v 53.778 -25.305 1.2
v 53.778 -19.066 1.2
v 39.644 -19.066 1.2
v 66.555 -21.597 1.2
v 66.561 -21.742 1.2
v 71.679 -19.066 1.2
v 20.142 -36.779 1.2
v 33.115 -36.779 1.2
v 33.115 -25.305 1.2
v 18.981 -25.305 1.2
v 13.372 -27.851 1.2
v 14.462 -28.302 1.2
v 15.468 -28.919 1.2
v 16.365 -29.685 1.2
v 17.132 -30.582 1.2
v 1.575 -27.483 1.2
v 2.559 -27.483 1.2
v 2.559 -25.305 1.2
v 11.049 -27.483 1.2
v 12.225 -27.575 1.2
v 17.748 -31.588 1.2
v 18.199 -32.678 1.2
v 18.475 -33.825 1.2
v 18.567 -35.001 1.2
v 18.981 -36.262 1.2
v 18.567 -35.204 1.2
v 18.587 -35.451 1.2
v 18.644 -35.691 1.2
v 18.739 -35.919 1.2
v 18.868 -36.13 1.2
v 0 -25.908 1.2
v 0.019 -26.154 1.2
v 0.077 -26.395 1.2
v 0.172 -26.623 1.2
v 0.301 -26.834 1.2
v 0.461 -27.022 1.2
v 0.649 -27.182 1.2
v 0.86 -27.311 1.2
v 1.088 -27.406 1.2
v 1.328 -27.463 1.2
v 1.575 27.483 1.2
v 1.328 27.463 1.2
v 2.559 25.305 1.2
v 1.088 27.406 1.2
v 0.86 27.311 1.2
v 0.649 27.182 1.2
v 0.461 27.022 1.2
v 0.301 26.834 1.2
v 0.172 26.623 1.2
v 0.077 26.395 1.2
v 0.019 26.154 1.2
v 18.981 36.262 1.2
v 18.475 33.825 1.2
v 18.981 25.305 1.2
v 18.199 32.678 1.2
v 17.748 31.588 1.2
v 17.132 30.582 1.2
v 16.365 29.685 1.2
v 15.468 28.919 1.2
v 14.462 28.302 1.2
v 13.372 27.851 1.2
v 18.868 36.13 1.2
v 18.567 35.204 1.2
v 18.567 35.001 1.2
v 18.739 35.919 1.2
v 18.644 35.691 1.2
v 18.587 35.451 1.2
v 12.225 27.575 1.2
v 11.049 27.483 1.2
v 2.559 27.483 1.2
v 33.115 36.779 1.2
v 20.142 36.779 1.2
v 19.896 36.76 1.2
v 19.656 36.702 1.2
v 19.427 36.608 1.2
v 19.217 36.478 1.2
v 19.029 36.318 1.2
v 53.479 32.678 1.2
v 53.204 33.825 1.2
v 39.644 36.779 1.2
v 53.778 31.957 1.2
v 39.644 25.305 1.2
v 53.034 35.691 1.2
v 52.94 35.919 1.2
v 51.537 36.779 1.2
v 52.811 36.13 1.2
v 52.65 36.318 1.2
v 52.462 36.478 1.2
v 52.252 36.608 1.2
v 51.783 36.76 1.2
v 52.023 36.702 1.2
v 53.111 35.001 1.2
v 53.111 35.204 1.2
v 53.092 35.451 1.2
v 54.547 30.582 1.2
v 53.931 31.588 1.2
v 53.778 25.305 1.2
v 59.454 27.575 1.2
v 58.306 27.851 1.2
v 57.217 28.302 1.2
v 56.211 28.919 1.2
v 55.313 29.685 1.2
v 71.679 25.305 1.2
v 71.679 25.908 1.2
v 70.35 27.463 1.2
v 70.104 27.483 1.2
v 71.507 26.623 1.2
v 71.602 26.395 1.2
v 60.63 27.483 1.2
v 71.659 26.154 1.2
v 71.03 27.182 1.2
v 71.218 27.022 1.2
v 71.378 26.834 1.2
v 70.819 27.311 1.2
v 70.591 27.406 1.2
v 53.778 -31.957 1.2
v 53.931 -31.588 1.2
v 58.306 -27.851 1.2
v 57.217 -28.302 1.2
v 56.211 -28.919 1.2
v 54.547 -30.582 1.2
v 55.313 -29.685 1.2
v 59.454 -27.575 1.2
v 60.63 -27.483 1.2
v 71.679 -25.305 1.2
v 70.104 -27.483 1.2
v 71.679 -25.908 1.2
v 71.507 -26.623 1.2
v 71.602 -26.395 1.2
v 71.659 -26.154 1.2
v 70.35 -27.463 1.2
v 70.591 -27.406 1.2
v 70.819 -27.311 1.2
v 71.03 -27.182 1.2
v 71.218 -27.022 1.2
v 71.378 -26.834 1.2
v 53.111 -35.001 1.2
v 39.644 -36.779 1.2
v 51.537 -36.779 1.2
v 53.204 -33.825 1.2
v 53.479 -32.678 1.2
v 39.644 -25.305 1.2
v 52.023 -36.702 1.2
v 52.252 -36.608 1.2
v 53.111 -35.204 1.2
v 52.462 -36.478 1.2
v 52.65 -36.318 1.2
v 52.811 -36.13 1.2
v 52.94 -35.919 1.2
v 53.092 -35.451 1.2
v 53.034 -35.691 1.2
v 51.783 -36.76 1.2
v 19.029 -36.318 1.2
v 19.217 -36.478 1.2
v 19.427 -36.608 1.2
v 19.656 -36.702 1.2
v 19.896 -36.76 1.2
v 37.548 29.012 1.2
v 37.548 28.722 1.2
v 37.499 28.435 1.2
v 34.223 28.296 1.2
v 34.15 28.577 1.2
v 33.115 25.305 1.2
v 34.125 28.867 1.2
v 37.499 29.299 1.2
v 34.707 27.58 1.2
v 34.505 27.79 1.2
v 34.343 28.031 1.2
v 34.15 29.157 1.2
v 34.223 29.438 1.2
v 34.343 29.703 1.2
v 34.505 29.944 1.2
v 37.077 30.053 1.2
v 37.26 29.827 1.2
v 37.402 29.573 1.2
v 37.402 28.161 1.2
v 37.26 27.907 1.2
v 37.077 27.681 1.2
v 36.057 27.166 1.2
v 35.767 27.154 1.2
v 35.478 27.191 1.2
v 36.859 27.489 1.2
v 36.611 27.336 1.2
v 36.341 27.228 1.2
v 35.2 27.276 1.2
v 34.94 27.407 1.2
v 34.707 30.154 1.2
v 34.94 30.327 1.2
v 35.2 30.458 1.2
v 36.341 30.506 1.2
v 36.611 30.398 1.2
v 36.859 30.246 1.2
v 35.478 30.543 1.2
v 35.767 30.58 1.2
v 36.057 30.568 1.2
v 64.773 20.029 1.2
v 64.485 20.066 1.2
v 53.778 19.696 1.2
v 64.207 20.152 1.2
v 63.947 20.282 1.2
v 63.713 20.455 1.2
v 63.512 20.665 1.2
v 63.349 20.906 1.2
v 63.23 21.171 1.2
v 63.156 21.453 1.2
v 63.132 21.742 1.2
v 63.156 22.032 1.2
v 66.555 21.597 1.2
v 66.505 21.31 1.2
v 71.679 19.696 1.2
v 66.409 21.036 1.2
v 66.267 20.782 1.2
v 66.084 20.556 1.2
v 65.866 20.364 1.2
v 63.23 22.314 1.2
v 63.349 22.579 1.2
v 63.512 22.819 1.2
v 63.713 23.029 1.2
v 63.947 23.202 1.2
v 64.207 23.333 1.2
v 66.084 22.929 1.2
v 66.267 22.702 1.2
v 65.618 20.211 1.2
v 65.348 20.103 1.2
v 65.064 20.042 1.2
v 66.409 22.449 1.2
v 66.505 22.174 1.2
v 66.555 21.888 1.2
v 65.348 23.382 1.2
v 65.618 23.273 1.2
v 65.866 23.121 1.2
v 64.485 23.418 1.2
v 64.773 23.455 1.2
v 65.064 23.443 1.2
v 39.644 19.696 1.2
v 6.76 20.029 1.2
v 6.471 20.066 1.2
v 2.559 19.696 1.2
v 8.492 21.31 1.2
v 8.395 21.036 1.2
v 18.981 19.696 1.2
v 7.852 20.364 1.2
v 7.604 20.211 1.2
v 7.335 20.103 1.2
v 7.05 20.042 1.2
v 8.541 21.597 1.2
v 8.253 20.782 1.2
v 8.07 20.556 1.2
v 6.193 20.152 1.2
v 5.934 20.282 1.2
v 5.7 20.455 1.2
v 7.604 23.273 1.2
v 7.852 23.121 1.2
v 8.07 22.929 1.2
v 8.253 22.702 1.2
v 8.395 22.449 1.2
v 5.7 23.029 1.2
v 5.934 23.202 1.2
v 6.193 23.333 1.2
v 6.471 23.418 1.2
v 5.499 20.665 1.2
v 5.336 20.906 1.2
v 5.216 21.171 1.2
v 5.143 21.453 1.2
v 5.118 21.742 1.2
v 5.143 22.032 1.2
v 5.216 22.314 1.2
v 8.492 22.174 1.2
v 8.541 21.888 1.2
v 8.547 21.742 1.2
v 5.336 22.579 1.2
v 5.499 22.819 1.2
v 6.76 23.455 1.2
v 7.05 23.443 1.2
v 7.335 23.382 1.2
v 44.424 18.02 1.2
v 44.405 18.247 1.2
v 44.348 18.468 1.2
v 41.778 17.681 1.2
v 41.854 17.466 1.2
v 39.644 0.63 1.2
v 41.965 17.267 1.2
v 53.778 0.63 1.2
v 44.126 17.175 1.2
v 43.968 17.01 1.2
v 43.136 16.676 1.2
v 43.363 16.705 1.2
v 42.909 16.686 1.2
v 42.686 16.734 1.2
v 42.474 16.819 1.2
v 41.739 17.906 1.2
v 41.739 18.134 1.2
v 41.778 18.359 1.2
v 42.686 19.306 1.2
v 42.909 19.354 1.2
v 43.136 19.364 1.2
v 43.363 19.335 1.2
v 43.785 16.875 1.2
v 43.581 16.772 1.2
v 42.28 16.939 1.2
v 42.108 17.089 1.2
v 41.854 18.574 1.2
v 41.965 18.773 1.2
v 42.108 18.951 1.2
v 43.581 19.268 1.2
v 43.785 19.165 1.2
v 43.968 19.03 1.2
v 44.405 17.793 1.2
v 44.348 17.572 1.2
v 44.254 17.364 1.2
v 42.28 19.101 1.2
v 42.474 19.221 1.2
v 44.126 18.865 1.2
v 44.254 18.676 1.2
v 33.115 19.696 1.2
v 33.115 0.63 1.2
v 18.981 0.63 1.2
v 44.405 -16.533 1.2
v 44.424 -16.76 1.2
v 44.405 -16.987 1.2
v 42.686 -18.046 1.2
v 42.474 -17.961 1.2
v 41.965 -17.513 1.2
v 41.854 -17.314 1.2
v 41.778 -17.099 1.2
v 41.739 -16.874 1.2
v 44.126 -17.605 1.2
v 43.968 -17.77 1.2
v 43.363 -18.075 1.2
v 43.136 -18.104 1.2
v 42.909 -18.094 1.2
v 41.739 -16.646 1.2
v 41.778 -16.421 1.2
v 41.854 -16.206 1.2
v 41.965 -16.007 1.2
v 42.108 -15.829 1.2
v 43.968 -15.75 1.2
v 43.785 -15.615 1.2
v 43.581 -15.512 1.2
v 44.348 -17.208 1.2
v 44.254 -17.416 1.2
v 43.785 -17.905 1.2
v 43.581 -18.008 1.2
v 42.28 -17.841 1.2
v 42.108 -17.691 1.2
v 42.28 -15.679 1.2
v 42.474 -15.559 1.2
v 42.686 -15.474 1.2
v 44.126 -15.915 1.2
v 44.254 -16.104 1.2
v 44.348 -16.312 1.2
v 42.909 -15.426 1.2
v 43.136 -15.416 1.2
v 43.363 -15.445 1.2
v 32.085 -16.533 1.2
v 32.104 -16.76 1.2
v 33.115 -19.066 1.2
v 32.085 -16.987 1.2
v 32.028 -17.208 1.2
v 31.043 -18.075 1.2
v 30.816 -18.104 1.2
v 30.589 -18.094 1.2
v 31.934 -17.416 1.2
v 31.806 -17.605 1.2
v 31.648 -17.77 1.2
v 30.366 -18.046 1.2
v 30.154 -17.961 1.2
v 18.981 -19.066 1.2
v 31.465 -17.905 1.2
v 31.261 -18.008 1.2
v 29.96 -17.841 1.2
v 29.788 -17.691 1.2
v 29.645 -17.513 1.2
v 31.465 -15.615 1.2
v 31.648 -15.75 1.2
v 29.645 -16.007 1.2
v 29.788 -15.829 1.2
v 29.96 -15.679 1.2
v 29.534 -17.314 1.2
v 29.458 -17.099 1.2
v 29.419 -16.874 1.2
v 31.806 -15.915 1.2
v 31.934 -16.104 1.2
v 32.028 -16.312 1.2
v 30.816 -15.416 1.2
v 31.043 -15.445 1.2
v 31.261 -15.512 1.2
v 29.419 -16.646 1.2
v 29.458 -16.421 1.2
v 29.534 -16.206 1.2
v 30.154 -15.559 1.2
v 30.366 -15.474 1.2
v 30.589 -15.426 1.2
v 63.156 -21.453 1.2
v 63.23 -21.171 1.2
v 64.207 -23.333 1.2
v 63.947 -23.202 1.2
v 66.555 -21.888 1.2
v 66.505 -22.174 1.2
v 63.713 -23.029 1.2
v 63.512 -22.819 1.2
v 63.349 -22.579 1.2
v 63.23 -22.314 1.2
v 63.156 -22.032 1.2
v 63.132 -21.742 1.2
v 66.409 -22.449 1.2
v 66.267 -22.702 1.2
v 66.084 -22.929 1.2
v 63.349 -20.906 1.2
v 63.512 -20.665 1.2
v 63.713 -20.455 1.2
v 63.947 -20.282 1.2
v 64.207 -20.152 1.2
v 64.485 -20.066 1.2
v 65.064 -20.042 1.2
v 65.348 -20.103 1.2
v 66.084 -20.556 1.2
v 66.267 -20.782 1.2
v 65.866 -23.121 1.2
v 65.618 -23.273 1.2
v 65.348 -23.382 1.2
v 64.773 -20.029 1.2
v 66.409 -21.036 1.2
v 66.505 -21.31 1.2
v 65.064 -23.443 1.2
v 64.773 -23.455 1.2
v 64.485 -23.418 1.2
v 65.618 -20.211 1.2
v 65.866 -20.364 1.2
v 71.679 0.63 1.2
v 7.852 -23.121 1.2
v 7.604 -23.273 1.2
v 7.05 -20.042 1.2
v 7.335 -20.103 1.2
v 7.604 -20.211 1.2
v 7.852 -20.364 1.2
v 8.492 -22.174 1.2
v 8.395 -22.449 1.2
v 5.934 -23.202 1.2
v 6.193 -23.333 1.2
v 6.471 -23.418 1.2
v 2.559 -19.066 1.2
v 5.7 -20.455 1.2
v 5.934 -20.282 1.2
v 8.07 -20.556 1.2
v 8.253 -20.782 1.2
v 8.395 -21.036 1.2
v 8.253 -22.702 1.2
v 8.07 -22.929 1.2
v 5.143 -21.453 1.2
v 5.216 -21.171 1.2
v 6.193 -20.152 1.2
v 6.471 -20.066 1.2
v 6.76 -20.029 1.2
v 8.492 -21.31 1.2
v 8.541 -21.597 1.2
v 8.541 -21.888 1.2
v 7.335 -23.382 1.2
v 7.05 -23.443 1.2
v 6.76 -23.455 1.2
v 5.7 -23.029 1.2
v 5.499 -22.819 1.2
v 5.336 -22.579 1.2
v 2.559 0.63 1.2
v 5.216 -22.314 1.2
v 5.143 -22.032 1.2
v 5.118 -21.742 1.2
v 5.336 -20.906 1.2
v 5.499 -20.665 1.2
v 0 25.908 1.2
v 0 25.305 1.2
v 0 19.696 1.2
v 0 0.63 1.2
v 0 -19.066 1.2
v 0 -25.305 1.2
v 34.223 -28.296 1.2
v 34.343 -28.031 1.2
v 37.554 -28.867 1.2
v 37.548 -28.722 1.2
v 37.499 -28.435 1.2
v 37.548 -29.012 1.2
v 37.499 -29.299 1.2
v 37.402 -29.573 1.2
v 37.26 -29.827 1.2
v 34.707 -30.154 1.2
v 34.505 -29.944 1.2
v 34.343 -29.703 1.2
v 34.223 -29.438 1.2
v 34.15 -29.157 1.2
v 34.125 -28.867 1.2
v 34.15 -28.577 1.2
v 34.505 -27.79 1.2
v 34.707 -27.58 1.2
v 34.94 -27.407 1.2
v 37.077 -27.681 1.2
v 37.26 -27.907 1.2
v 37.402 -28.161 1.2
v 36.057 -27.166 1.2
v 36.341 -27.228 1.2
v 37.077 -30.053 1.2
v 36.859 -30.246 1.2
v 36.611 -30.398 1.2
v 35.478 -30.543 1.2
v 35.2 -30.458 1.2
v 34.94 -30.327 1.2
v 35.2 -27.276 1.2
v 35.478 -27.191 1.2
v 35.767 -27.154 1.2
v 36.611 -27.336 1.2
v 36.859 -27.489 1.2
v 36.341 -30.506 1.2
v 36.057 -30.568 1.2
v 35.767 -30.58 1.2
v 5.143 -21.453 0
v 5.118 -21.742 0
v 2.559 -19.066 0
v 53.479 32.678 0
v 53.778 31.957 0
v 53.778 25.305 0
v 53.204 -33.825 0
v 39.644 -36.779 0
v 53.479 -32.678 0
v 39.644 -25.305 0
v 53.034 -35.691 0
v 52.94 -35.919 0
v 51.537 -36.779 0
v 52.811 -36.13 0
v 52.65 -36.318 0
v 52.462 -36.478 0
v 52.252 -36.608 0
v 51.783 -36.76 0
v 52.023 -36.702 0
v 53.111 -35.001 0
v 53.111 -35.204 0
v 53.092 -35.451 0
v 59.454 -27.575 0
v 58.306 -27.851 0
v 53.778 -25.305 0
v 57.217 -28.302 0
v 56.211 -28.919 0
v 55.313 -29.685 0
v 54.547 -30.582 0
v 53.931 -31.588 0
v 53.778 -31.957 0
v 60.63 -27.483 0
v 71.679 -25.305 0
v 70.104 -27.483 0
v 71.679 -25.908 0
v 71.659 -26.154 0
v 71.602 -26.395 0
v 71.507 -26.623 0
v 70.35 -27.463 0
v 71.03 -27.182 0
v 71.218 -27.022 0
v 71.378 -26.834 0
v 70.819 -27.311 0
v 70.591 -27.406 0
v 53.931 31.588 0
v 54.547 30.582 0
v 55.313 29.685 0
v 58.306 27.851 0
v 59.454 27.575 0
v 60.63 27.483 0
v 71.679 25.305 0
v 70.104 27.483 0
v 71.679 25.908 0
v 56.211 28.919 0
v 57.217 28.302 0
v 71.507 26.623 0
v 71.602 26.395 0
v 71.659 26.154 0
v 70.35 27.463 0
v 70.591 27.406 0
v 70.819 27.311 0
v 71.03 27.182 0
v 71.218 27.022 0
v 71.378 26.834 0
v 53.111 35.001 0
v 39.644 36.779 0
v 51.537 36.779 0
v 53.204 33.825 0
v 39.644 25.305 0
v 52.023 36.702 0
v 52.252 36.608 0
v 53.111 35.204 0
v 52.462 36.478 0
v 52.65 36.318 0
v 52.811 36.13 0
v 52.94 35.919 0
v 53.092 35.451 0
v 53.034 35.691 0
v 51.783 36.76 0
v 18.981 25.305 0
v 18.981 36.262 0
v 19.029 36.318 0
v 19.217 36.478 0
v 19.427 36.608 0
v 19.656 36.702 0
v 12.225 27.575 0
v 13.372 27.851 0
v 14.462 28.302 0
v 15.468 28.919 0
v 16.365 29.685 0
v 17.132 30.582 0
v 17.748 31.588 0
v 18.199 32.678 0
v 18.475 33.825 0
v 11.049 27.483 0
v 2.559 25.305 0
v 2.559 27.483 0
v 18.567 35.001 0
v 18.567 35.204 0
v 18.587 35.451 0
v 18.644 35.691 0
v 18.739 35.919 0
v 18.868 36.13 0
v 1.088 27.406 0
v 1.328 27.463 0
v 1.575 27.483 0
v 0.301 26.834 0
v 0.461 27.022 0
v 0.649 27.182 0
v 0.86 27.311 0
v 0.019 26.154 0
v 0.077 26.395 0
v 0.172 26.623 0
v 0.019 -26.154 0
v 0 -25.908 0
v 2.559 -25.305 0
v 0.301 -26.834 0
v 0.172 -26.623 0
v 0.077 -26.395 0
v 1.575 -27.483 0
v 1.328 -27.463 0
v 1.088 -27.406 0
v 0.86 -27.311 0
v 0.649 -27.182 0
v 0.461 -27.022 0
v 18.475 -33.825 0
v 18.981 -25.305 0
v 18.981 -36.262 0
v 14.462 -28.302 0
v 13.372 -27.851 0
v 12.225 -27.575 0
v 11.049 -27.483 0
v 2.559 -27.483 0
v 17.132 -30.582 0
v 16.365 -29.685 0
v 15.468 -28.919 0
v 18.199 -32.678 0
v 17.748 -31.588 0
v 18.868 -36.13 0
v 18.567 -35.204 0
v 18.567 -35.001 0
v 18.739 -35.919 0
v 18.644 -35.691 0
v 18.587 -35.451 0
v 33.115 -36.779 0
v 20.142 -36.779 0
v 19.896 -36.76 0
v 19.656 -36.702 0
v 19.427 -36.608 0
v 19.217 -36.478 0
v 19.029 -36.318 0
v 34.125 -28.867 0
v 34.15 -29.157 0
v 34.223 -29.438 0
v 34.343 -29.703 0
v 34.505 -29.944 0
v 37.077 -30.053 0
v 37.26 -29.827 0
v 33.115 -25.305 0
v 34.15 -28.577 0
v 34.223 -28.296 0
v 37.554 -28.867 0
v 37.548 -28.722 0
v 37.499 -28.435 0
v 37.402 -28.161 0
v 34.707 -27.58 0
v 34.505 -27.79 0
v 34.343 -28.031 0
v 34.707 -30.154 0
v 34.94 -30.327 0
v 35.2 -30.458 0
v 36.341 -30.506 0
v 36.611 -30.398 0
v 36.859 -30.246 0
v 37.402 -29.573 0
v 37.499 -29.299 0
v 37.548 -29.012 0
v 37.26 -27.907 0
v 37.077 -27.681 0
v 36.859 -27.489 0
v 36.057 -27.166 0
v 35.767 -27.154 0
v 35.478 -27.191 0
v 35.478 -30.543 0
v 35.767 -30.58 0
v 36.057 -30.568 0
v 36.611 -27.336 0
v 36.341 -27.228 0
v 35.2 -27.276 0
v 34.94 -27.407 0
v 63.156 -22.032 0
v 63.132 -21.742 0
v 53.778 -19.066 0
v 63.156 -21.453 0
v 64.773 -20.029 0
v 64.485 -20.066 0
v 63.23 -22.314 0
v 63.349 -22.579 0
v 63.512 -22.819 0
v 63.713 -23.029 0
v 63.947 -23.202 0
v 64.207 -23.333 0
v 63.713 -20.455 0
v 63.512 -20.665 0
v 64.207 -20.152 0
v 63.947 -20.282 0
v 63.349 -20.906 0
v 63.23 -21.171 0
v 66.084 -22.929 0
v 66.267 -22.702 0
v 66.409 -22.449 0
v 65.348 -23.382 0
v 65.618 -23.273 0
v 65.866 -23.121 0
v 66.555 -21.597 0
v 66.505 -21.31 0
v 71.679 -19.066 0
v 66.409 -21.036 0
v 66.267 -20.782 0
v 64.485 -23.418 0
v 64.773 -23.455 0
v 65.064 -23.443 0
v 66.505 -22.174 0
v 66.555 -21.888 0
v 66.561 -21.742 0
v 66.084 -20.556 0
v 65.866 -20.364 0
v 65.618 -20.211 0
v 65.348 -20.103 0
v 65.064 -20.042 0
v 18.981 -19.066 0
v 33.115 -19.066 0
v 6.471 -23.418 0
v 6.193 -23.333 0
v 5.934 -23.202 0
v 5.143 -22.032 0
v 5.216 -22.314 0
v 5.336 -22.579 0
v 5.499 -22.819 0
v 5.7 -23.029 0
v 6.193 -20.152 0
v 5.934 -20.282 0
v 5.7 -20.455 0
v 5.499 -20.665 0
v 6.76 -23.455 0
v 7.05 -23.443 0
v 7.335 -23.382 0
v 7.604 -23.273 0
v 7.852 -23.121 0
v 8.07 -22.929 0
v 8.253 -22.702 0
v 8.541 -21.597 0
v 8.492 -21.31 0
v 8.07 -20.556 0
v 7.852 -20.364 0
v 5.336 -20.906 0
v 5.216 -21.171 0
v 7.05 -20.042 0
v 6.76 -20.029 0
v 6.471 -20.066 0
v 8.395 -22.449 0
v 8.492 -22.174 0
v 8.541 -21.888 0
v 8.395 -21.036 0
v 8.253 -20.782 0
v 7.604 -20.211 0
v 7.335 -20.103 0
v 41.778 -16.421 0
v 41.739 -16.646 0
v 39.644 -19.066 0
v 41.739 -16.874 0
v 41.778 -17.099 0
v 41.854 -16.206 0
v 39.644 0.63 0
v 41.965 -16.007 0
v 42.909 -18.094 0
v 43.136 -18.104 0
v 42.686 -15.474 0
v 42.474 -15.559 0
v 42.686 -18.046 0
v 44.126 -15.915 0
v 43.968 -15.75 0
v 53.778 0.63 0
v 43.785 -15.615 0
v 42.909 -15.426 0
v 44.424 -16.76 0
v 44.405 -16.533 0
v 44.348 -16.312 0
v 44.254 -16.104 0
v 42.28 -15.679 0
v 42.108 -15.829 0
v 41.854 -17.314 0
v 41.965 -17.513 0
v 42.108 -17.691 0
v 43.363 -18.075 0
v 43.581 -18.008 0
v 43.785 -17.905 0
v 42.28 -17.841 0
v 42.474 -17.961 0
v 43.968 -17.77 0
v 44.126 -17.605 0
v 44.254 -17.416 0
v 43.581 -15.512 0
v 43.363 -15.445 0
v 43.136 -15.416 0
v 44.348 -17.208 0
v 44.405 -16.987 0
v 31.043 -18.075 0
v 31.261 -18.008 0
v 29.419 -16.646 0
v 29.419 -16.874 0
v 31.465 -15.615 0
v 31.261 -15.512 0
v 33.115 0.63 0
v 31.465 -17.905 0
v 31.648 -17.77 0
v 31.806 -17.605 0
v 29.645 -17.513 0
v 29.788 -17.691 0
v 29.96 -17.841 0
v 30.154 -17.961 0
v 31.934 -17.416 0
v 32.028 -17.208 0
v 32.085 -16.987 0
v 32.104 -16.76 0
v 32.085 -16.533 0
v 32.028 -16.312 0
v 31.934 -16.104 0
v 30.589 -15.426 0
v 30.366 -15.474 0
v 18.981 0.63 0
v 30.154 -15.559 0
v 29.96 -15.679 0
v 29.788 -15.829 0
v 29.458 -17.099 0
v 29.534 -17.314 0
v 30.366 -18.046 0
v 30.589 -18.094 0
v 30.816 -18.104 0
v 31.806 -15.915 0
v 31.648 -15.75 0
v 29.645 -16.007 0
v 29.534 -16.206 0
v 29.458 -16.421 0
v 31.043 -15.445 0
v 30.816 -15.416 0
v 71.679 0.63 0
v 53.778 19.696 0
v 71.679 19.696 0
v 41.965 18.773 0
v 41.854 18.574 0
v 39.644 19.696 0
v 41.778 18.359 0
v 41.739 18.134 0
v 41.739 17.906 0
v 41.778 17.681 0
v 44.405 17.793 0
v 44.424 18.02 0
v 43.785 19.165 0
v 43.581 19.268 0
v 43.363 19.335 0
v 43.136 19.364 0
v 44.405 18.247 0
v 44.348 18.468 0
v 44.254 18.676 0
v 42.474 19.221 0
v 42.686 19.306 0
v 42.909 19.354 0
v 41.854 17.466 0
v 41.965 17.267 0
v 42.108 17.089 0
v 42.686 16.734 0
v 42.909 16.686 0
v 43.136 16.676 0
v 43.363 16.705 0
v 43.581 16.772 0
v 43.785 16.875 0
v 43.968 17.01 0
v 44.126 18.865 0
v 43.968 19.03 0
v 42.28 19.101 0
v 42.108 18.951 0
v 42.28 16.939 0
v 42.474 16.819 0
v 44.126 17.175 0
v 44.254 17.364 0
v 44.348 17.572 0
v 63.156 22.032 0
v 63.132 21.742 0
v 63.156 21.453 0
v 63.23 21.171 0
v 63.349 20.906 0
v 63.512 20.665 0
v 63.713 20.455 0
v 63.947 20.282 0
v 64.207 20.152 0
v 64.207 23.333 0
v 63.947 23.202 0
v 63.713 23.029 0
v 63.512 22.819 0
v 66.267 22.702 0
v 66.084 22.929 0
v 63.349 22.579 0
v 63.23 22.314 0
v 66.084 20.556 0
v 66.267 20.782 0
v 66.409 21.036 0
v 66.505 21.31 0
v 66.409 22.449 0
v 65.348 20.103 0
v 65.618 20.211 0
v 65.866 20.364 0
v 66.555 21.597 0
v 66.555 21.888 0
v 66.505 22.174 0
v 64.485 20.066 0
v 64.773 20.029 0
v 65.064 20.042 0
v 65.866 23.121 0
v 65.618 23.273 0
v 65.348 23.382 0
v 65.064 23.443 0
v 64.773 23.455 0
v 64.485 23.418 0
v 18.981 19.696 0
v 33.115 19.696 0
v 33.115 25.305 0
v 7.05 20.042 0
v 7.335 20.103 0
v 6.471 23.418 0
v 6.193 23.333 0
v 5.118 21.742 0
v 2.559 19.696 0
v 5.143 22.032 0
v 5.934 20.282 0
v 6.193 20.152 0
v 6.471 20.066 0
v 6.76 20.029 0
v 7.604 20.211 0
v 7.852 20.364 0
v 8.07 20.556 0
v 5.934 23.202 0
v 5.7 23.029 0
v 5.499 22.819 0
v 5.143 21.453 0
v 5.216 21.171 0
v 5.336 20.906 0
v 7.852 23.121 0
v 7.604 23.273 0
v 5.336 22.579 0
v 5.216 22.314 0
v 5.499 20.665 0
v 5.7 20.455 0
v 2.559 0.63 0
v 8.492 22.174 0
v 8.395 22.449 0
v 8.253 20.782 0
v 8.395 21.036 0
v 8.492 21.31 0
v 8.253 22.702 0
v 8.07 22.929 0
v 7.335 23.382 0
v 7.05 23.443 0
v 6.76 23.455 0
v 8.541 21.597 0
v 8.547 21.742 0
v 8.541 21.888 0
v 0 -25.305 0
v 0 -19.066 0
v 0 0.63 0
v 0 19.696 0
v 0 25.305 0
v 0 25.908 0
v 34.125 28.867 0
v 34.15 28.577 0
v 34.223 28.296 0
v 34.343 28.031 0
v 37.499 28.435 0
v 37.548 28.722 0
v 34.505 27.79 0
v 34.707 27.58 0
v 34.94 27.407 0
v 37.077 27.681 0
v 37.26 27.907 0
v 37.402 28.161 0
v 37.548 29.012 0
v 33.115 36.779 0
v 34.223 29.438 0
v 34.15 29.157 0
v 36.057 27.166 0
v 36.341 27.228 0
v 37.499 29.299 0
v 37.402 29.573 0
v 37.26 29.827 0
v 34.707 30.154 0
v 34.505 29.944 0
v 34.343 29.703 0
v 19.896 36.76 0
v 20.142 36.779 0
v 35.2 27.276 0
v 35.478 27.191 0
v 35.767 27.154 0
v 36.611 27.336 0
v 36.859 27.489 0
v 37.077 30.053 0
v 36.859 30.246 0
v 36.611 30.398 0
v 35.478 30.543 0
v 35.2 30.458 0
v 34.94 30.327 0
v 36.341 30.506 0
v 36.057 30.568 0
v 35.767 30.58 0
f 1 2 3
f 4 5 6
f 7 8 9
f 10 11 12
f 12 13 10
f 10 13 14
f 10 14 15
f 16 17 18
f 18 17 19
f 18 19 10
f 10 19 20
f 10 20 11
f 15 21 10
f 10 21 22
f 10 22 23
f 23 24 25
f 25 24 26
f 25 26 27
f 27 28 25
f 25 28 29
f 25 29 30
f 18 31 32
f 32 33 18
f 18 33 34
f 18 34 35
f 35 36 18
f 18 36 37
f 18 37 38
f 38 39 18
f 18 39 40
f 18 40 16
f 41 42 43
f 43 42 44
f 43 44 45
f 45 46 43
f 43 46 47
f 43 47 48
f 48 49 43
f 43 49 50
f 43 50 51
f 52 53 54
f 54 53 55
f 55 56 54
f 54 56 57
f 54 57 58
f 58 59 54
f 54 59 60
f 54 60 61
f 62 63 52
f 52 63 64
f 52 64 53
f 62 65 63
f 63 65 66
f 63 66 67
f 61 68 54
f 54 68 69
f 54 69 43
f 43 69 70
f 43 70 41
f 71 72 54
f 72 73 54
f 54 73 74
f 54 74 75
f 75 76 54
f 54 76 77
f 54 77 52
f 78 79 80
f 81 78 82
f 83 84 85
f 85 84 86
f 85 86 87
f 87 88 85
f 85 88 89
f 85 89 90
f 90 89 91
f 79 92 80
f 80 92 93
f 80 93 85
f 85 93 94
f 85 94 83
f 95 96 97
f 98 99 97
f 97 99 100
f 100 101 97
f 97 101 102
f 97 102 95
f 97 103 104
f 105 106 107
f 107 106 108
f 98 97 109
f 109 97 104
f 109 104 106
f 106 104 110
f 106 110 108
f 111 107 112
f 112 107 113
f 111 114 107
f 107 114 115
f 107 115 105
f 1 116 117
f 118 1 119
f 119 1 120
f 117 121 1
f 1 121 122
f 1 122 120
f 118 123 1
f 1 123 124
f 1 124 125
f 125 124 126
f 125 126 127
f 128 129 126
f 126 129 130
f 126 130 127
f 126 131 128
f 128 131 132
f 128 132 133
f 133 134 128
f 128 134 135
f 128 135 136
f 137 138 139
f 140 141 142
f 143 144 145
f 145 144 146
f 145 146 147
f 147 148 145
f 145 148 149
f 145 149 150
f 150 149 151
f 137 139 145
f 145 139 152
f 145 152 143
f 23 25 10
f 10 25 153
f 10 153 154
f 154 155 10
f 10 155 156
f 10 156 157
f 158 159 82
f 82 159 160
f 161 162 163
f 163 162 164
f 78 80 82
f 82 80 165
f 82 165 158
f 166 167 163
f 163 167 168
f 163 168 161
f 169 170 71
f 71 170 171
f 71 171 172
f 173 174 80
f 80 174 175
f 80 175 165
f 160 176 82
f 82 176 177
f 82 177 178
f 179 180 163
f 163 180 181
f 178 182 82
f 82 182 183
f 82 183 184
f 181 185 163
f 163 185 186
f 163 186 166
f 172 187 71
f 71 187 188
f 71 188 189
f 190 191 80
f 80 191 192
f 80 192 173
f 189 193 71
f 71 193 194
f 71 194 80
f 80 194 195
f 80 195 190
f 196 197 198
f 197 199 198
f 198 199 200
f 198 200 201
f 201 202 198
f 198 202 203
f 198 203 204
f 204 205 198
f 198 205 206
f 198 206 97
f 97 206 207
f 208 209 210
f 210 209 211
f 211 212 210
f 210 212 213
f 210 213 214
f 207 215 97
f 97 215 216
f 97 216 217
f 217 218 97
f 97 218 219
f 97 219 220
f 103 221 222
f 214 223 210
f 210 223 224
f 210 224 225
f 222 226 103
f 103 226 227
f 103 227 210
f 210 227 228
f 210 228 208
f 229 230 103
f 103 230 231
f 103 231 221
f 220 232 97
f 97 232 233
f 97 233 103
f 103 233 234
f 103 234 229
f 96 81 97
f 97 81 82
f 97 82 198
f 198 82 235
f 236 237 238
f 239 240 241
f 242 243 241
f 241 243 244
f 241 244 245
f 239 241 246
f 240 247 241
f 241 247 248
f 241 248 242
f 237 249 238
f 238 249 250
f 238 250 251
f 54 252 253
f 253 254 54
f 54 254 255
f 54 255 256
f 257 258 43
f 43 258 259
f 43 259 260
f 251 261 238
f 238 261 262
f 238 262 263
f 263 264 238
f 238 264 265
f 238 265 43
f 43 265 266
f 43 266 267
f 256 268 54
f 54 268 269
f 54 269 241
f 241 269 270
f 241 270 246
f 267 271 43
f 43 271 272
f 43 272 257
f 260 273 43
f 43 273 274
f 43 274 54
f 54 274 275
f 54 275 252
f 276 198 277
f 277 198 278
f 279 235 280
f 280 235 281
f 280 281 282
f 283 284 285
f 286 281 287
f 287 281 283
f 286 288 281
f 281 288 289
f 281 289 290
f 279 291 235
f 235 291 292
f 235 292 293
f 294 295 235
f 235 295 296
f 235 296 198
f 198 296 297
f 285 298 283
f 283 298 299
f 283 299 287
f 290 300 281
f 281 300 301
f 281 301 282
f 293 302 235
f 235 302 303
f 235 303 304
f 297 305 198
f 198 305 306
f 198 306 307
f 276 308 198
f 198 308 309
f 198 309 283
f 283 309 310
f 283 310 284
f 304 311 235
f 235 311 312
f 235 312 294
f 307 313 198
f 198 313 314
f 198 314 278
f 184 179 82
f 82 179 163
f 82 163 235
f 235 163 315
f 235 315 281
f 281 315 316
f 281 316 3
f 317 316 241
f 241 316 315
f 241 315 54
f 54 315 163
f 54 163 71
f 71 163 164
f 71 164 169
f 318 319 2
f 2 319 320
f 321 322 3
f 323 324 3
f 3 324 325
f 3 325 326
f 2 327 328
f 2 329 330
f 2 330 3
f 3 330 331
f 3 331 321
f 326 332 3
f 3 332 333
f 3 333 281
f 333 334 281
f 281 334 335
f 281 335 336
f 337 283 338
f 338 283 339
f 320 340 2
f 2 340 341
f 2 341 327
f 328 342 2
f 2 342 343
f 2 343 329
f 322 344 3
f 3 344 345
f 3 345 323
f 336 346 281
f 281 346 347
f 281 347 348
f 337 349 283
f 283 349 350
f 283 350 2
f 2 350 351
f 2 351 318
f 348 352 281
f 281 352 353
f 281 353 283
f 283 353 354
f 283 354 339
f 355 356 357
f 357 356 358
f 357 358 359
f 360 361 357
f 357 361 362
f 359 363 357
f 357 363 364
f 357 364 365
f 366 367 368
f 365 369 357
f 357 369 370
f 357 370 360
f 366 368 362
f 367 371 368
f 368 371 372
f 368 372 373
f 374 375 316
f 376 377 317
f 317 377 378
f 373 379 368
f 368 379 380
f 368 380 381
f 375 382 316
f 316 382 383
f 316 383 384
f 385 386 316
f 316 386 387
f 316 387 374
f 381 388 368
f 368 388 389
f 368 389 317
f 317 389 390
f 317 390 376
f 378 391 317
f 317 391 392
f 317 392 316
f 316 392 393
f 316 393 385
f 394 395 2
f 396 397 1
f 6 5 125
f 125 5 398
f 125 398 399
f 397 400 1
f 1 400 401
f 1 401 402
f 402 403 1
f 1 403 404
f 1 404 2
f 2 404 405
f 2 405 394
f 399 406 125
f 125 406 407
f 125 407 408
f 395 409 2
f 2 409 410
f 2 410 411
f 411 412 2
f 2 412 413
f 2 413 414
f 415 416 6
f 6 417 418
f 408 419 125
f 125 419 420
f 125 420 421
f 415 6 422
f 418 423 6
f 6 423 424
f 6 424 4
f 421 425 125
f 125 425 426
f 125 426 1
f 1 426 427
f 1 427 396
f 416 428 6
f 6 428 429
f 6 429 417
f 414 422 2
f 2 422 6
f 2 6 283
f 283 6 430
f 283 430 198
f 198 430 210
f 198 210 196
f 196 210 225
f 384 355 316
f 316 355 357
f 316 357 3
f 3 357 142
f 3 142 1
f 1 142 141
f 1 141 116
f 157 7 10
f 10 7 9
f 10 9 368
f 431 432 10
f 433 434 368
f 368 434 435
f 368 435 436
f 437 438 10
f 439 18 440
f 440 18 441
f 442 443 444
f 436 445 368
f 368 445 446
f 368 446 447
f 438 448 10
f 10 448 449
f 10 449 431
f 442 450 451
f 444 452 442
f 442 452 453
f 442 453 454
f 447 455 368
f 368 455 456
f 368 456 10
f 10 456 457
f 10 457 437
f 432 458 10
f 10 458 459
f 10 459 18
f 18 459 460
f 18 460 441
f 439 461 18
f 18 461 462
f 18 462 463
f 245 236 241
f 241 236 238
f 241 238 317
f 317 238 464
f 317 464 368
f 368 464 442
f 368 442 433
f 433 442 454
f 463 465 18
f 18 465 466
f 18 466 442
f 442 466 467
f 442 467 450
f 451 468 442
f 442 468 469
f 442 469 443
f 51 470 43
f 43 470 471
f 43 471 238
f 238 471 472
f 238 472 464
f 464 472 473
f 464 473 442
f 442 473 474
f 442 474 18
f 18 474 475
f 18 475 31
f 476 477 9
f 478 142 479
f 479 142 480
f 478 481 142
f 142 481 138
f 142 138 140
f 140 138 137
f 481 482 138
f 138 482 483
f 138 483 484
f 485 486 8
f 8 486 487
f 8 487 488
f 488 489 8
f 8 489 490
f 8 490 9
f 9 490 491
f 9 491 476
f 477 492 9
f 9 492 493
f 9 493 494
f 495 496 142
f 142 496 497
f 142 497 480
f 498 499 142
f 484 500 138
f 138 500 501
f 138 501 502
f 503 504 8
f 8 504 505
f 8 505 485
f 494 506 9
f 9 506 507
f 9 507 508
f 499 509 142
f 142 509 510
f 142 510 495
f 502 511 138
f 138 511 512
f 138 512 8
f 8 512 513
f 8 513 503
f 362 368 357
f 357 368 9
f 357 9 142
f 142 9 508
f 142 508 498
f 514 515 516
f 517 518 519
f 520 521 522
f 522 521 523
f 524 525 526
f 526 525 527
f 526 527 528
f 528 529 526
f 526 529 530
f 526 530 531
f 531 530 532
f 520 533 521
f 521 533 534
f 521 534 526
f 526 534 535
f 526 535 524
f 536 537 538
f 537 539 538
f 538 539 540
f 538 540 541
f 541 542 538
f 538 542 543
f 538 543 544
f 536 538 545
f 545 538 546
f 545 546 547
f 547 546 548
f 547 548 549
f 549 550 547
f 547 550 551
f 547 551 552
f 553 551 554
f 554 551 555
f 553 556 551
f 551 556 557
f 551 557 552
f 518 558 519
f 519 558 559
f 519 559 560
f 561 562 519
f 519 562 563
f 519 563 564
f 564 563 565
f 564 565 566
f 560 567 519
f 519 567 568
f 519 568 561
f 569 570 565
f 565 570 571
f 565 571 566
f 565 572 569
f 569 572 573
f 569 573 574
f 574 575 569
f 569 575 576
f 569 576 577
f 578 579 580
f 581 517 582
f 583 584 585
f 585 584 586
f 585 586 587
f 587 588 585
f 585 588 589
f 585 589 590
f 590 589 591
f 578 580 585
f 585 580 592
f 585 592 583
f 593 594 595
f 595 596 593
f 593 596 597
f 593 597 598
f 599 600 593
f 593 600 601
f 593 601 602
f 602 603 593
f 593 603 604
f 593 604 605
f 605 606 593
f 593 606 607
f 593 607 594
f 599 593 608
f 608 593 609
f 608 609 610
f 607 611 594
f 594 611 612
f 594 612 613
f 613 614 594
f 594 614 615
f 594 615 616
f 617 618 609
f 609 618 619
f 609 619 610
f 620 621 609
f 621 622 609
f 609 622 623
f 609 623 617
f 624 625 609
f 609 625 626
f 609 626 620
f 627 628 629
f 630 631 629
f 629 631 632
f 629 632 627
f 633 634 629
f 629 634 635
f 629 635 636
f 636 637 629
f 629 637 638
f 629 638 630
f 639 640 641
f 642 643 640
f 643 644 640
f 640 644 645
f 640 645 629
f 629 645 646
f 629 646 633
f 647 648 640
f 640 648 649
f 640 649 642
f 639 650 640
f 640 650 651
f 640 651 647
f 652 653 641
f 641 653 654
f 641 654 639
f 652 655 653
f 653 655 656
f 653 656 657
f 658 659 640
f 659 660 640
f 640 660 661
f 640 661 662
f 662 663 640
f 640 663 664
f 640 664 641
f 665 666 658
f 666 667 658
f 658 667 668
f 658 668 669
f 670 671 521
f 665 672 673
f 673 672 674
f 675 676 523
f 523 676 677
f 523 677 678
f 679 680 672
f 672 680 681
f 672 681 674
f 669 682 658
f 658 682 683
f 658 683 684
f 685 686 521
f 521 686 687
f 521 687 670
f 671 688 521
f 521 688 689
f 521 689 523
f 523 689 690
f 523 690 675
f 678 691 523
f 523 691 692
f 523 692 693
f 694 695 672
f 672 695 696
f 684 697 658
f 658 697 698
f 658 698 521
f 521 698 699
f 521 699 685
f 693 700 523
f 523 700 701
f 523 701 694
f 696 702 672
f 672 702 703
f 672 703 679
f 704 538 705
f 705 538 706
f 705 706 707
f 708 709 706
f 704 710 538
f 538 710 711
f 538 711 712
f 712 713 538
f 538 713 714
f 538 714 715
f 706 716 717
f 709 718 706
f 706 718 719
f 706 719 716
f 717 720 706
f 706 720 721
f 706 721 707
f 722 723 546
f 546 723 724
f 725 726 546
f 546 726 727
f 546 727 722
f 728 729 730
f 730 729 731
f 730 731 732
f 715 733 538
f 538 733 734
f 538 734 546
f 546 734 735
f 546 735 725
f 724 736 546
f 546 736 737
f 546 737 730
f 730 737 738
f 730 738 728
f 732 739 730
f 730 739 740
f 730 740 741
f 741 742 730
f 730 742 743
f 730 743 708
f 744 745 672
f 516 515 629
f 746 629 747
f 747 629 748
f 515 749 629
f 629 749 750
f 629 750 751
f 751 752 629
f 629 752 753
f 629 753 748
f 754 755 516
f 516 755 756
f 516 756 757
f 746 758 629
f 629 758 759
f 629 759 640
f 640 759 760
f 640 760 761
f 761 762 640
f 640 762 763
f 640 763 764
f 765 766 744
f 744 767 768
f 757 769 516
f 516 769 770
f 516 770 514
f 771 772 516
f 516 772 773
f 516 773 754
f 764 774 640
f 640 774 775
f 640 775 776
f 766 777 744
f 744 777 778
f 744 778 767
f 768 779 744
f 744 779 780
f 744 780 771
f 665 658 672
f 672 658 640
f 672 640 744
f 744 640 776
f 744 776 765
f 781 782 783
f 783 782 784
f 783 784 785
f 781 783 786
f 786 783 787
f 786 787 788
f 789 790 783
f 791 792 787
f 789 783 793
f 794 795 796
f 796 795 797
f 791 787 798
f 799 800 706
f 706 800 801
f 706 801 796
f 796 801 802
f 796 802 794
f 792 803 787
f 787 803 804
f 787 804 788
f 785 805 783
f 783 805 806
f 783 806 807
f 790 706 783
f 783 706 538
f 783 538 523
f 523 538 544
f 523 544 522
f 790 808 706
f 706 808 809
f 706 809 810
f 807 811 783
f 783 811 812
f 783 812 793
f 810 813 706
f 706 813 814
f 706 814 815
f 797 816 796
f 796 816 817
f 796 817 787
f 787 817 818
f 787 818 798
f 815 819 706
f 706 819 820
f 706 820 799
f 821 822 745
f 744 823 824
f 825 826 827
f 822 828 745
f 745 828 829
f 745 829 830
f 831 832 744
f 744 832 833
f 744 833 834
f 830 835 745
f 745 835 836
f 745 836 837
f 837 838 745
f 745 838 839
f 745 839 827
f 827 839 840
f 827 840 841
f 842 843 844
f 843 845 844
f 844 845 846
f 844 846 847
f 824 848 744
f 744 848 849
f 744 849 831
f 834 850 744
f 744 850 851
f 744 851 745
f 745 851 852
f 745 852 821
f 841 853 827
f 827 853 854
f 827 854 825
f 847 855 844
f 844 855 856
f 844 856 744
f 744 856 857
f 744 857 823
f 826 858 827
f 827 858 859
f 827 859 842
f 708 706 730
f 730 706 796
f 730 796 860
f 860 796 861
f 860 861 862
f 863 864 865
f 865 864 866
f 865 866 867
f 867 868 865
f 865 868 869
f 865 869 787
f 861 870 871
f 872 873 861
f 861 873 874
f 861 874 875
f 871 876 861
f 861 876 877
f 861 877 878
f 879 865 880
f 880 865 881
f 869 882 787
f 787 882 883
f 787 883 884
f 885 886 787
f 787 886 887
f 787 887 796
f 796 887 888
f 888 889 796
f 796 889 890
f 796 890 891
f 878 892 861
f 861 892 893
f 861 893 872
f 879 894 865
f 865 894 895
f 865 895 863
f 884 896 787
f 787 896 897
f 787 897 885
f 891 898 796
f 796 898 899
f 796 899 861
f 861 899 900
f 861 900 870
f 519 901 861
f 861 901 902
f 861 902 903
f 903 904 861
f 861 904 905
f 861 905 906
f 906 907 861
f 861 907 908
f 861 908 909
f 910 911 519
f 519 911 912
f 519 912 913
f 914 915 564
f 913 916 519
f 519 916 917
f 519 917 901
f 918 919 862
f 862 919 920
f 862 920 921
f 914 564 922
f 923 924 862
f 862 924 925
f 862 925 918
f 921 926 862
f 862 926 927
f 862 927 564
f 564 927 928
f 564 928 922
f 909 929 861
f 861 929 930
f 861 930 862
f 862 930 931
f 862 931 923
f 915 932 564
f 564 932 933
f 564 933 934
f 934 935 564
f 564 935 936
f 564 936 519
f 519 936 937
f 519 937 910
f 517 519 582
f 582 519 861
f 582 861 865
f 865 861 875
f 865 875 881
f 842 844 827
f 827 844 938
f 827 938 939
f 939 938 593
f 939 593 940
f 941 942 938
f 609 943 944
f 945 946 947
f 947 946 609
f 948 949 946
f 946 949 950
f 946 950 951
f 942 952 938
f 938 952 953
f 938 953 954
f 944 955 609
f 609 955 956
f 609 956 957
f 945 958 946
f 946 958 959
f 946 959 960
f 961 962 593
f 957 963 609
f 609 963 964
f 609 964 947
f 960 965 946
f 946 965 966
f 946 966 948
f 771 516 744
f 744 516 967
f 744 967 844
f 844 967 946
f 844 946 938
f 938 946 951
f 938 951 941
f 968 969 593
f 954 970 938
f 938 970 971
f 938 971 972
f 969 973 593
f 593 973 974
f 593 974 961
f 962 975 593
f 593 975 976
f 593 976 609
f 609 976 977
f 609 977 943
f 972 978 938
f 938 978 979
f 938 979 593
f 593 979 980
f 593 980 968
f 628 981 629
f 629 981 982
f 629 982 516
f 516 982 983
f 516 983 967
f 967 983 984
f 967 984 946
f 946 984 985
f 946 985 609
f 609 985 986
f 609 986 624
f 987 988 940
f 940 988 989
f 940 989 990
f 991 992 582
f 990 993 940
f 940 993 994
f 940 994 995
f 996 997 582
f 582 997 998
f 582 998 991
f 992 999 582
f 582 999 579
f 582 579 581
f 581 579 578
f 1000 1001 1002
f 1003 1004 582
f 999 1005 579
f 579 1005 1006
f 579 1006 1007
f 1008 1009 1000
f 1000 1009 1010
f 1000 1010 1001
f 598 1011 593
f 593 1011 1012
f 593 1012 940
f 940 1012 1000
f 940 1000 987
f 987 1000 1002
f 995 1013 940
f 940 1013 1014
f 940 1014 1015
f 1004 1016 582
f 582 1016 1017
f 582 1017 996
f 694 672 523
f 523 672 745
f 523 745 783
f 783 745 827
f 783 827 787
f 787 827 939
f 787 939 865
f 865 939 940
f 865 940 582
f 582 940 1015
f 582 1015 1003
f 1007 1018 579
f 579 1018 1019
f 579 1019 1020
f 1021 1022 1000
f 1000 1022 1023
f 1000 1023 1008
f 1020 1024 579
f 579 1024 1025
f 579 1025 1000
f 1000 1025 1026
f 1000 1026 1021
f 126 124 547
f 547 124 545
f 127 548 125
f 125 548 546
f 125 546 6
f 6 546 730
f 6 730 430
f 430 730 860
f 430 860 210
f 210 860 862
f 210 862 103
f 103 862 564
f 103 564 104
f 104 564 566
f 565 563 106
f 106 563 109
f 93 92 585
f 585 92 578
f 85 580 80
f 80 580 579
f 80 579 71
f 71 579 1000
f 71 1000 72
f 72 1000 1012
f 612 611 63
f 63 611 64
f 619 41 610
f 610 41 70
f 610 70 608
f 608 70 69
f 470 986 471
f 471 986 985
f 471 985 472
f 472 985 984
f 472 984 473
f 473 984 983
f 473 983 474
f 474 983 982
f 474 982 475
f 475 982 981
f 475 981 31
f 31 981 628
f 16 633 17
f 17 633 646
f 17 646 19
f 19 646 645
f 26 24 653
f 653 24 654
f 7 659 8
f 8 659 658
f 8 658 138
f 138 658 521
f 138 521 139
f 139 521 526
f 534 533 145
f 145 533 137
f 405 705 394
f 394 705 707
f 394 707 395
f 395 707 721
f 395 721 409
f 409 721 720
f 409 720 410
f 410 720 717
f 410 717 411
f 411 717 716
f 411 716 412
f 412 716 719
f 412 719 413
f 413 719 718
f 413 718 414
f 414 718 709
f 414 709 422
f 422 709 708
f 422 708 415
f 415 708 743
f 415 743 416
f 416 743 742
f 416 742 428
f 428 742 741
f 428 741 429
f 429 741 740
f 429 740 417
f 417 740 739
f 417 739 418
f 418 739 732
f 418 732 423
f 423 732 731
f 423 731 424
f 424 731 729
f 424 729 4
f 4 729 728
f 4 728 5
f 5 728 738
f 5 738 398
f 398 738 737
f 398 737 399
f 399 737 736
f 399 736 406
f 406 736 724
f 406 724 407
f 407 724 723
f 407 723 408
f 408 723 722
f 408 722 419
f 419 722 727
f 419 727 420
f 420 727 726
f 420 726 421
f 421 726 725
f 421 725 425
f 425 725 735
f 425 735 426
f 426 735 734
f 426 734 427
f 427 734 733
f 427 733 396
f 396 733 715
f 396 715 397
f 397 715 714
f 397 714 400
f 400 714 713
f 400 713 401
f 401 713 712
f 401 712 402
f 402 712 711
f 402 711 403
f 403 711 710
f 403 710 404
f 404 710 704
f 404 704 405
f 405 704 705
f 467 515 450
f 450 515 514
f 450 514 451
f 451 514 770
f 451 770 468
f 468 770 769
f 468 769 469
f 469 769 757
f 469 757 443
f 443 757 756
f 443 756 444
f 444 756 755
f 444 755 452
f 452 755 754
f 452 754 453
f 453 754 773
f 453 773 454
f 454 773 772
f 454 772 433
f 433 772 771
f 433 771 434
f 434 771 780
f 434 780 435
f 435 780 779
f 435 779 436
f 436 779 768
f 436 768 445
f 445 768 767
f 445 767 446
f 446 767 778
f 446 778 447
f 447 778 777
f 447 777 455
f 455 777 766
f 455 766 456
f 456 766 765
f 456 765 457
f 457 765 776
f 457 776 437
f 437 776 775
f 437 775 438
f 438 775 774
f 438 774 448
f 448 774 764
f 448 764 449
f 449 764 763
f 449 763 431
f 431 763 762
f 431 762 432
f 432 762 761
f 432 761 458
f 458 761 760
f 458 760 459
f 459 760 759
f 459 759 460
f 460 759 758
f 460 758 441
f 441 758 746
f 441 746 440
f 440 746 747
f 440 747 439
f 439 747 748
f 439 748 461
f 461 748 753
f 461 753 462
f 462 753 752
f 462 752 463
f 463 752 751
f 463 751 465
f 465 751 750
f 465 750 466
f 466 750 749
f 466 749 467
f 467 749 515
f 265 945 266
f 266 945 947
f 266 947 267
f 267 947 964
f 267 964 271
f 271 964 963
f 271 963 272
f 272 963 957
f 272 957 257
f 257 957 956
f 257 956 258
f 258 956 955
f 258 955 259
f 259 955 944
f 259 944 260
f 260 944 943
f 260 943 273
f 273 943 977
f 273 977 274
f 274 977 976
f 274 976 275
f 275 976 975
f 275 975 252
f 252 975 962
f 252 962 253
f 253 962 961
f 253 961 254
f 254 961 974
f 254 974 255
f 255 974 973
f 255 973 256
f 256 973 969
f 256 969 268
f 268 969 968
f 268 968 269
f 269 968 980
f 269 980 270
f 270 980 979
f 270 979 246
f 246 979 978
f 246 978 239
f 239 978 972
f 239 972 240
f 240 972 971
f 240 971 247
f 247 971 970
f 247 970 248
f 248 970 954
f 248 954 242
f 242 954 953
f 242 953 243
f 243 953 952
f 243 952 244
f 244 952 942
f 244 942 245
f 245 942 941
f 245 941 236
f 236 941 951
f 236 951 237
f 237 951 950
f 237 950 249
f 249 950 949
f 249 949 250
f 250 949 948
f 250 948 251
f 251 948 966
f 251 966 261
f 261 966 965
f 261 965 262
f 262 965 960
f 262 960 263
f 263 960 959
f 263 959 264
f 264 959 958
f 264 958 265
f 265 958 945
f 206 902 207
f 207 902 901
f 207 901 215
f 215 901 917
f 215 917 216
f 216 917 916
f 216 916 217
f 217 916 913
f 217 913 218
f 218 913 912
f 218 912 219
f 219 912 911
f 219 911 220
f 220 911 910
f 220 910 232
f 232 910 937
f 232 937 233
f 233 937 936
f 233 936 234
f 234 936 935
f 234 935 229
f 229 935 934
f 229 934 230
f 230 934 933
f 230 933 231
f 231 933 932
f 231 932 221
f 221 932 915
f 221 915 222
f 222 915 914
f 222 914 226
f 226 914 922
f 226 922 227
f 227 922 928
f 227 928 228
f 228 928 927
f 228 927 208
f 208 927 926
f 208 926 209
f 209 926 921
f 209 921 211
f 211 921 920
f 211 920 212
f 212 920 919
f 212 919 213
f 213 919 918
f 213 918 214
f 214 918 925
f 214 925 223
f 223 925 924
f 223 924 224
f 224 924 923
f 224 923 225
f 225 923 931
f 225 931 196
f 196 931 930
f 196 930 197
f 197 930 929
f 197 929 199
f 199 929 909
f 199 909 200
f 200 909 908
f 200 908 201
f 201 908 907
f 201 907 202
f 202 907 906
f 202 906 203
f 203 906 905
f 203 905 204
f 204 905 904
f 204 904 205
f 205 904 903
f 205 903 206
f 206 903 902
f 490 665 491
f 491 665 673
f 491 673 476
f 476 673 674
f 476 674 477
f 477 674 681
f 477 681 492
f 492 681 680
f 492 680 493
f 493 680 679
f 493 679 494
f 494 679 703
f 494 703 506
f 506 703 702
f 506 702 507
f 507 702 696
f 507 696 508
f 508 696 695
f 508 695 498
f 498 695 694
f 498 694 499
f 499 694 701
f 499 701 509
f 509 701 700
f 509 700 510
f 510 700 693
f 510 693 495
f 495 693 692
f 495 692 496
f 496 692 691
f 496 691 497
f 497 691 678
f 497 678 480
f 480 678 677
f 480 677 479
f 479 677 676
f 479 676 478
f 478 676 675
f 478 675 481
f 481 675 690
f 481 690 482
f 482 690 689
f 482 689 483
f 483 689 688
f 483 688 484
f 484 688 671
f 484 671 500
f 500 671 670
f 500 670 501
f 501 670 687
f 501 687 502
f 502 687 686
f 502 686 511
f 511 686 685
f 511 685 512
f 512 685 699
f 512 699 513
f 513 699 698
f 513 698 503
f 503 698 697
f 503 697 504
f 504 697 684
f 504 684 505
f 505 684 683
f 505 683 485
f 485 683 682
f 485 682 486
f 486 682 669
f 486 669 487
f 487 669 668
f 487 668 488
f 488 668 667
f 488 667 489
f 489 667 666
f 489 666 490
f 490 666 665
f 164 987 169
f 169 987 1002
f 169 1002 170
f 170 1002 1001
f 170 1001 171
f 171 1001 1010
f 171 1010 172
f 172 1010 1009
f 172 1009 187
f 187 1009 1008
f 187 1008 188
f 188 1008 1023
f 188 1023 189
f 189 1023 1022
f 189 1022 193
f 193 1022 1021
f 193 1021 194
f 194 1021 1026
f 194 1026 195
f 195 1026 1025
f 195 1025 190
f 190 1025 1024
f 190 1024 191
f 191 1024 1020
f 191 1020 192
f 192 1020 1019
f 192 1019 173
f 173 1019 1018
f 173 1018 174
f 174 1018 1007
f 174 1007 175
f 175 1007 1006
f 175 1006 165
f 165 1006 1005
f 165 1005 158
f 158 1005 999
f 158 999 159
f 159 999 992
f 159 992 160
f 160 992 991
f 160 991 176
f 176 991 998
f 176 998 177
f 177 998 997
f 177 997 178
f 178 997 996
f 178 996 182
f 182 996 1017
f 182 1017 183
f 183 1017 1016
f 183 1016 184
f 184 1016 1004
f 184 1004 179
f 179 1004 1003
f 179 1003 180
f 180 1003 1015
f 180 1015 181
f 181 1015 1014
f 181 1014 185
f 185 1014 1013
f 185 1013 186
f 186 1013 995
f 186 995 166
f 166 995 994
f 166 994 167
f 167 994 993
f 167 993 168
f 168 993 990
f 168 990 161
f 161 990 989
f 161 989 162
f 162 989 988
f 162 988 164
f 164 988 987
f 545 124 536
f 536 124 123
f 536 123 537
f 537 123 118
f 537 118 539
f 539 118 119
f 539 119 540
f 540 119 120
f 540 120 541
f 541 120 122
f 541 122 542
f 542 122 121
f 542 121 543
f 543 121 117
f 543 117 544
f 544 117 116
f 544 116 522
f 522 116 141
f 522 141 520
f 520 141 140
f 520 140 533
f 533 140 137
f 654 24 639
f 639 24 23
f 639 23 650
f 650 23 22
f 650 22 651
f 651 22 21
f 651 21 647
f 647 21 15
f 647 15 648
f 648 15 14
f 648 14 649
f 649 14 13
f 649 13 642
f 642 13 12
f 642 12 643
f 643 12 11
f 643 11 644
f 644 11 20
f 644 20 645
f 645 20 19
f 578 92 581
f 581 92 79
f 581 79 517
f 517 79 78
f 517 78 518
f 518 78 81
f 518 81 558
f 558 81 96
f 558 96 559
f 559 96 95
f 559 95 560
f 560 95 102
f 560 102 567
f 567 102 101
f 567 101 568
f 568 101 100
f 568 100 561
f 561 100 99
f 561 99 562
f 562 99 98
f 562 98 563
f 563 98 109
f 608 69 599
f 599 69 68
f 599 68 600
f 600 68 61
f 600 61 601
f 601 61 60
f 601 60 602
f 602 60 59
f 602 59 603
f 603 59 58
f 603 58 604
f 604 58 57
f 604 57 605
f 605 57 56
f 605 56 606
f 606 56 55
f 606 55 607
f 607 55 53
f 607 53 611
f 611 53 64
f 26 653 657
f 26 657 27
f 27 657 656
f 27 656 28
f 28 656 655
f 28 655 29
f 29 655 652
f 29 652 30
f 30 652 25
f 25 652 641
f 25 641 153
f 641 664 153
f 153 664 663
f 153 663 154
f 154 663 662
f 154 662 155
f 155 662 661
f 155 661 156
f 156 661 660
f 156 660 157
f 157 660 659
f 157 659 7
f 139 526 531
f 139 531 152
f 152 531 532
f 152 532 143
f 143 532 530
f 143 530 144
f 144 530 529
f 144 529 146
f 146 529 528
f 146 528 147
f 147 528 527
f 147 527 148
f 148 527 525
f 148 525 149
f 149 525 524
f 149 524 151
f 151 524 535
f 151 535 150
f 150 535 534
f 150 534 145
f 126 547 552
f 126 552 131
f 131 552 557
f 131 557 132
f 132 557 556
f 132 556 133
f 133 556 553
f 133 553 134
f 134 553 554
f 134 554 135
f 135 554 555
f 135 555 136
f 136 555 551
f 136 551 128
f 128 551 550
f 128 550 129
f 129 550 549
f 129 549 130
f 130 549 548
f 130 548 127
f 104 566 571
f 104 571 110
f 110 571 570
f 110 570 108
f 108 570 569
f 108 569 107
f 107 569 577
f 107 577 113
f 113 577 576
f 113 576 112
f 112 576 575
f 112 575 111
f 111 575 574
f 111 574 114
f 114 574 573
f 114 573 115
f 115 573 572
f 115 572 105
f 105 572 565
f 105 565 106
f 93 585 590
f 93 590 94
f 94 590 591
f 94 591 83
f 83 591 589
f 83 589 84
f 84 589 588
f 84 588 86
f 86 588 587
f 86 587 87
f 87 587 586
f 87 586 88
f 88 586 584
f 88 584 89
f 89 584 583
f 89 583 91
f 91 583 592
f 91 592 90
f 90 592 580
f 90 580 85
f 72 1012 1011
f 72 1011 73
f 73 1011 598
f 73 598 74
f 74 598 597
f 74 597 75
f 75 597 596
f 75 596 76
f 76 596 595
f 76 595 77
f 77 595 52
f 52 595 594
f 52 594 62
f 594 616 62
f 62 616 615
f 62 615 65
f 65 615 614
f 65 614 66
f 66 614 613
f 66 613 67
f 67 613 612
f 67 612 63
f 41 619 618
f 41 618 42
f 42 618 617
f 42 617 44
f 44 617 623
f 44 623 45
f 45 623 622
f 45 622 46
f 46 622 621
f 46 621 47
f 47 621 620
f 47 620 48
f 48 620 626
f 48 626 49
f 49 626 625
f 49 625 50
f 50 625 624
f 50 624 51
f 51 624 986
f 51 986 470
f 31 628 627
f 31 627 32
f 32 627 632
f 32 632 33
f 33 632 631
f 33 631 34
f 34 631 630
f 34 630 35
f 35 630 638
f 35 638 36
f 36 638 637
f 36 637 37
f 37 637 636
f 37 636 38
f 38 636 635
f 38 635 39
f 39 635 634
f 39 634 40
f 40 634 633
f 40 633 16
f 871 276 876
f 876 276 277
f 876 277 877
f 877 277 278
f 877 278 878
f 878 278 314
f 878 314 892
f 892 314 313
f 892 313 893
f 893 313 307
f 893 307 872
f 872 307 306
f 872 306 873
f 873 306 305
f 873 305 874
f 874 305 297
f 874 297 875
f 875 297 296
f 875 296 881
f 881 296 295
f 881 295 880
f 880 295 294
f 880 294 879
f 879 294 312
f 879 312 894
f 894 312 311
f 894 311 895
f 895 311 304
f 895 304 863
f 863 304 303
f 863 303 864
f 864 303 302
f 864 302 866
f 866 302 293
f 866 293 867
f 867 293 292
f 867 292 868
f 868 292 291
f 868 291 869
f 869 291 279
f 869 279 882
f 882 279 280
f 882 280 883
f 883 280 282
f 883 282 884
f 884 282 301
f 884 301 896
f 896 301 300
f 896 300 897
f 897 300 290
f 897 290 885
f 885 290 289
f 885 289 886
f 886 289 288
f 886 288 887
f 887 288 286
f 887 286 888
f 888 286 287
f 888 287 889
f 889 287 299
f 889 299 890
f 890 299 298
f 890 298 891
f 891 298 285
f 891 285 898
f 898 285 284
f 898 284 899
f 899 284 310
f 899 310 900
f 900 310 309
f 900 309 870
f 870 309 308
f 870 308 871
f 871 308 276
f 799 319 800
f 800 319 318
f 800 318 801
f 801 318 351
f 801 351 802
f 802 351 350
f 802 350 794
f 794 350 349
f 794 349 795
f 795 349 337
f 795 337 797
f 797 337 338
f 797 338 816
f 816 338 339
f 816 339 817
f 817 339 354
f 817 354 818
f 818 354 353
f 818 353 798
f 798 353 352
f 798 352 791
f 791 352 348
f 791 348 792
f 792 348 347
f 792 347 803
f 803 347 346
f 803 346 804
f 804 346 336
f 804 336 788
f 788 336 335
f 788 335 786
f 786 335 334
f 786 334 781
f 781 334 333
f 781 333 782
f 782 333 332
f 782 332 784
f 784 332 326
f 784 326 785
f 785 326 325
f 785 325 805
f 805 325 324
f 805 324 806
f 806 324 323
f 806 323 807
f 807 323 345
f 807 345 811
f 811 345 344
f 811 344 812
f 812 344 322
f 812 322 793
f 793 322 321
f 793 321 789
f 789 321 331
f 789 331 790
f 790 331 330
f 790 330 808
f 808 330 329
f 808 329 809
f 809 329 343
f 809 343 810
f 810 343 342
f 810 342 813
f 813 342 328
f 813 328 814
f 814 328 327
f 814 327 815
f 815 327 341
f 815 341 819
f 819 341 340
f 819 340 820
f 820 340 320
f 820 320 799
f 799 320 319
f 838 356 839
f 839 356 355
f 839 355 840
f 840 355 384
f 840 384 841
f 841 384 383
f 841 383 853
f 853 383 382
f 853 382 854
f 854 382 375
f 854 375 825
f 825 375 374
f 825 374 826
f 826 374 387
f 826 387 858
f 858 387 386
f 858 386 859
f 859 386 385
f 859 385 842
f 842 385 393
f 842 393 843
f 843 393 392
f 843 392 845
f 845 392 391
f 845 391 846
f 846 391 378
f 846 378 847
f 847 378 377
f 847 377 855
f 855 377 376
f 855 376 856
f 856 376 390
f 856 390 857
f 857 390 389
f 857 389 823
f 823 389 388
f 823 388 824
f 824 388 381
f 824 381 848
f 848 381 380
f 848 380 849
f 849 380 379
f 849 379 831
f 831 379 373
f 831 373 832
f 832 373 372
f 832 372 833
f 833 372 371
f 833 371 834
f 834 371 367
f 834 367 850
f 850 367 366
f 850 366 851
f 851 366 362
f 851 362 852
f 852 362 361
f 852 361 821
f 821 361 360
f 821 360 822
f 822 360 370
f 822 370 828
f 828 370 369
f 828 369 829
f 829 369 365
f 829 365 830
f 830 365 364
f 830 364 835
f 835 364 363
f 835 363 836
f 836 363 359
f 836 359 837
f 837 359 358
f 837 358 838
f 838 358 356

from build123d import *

# Parameters (mm, degrees)
SKETCH1_R           = 1.7145
MAINBODY_DEPTH      = 1.2
LARGEROUNDS_R       = 7.5184
SMALLROUNDS_R       = 1.5748
PCBMOUNTHOLES_REACH = 82.573
SKETCH2_R           = 1.345


with BuildPart() as part:
    # Sketch1 → MainBody (new body)
    with BuildSketch(Plane.XY):
        Polygon((71.6788, -27.4828), (71.6788, 27.4828), (53.1114, 27.4828), (53.1114, 36.7792), (18.5674, 36.7792), (18.5674, 27.4828), (0, 27.4828), (0, -27.4828), (18.5674, -27.4828), (18.5674, -36.7792), (53.1114, -36.7792), (53.1114, -27.4828), align=None)
        with Locations((64.8462, -21.7424)):
            Circle(SKETCH1_R, mode=Mode.SUBTRACT)
        with Locations(Location((6.8326, -21.7424, 0), (0, 0, 180))):
            Circle(SKETCH1_R, mode=Mode.SUBTRACT)
        with Locations((6.8326, 21.7424)):
            Circle(SKETCH1_R, mode=Mode.SUBTRACT)
        with Locations(Location((64.8462, 21.7424, 0), (0, 0, 180))):
            Circle(SKETCH1_R, mode=Mode.SUBTRACT)
        with Locations((35.8394, -28.8671)):
            Circle(SKETCH1_R, mode=Mode.SUBTRACT)
        with Locations(Location((35.8394, 28.8671, 0), (0, 0, 180))):
            Circle(SKETCH1_R, mode=Mode.SUBTRACT)
    extrude(amount=MAINBODY_DEPTH)

    # LargeRounds
    largerounds_edges = [part.edges().sort_by_distance(p)[0] for p in [
        (53.1114, -27.4828, 0.6),
        (18.5674, -27.4828, 0.6),
        (18.5674, 27.4828, 0.6),
        (53.1114, 27.4828, 0.6),
    ]]
    fillet(largerounds_edges, radius=LARGEROUNDS_R)

    # SmallRounds
    smallrounds_edges = [part.edges().sort_by_distance(p)[0] for p in [
        (53.1114, -36.7792, 0.6),
        (18.5674, -36.7792, 0.6),
        (0, -27.4828, 0.6),
        (0, 27.4828, 0.6),
        (18.5674, 36.7792, 0.6),
        (53.1114, 36.7792, 0.6),
        (71.6788, 27.4828, 0.6),
        (71.6788, -27.4828, 0.6),
    ]]
    fillet(smallrounds_edges, radius=SMALLROUNDS_R)

    # Sketch2 → PCBMountHoles (cut, up to next)
    with BuildSketch(Plane.XY.offset(1.2), mode=Mode.PRIVATE) as pcbmountholes_sk1:
        with Locations((30.7594, -16.76)):
            Circle(SKETCH2_R)
    pcbmountholes_tool1 = extrude(pcbmountholes_sk1.sketch, amount=-PCBMOUNTHOLES_REACH, mode=Mode.PRIVATE) & part.part
    # Sketch2 → PCBMountHoles (cut, up to next)
    with BuildSketch(Plane.XY.offset(1.2), mode=Mode.PRIVATE) as pcbmountholes_sk2:
        with Locations((43.0794, -16.76)):
            Circle(SKETCH2_R)
    pcbmountholes_tool2 = extrude(pcbmountholes_sk2.sketch, amount=-PCBMOUNTHOLES_REACH, mode=Mode.PRIVATE) & part.part
    # Sketch2 → PCBMountHoles (cut, up to next)
    with BuildSketch(Plane.XY.offset(1.2), mode=Mode.PRIVATE) as pcbmountholes_sk3:
        with Locations((43.0794, 18.02)):
            Circle(SKETCH2_R)
    pcbmountholes_tool3 = extrude(pcbmountholes_sk3.sketch, amount=-PCBMOUNTHOLES_REACH, mode=Mode.PRIVATE) & part.part
    add(pcbmountholes_tool1.solids().sort_by_distance((30.7594, -16.76, 1.2))[0], mode=Mode.SUBTRACT)
    add(pcbmountholes_tool2.solids().sort_by_distance((43.0794, -16.76, 1.2))[0], mode=Mode.SUBTRACT)
    add(pcbmountholes_tool3.solids().sort_by_distance((43.0794, 18.02, 1.2))[0], mode=Mode.SUBTRACT)


solid = part.part
